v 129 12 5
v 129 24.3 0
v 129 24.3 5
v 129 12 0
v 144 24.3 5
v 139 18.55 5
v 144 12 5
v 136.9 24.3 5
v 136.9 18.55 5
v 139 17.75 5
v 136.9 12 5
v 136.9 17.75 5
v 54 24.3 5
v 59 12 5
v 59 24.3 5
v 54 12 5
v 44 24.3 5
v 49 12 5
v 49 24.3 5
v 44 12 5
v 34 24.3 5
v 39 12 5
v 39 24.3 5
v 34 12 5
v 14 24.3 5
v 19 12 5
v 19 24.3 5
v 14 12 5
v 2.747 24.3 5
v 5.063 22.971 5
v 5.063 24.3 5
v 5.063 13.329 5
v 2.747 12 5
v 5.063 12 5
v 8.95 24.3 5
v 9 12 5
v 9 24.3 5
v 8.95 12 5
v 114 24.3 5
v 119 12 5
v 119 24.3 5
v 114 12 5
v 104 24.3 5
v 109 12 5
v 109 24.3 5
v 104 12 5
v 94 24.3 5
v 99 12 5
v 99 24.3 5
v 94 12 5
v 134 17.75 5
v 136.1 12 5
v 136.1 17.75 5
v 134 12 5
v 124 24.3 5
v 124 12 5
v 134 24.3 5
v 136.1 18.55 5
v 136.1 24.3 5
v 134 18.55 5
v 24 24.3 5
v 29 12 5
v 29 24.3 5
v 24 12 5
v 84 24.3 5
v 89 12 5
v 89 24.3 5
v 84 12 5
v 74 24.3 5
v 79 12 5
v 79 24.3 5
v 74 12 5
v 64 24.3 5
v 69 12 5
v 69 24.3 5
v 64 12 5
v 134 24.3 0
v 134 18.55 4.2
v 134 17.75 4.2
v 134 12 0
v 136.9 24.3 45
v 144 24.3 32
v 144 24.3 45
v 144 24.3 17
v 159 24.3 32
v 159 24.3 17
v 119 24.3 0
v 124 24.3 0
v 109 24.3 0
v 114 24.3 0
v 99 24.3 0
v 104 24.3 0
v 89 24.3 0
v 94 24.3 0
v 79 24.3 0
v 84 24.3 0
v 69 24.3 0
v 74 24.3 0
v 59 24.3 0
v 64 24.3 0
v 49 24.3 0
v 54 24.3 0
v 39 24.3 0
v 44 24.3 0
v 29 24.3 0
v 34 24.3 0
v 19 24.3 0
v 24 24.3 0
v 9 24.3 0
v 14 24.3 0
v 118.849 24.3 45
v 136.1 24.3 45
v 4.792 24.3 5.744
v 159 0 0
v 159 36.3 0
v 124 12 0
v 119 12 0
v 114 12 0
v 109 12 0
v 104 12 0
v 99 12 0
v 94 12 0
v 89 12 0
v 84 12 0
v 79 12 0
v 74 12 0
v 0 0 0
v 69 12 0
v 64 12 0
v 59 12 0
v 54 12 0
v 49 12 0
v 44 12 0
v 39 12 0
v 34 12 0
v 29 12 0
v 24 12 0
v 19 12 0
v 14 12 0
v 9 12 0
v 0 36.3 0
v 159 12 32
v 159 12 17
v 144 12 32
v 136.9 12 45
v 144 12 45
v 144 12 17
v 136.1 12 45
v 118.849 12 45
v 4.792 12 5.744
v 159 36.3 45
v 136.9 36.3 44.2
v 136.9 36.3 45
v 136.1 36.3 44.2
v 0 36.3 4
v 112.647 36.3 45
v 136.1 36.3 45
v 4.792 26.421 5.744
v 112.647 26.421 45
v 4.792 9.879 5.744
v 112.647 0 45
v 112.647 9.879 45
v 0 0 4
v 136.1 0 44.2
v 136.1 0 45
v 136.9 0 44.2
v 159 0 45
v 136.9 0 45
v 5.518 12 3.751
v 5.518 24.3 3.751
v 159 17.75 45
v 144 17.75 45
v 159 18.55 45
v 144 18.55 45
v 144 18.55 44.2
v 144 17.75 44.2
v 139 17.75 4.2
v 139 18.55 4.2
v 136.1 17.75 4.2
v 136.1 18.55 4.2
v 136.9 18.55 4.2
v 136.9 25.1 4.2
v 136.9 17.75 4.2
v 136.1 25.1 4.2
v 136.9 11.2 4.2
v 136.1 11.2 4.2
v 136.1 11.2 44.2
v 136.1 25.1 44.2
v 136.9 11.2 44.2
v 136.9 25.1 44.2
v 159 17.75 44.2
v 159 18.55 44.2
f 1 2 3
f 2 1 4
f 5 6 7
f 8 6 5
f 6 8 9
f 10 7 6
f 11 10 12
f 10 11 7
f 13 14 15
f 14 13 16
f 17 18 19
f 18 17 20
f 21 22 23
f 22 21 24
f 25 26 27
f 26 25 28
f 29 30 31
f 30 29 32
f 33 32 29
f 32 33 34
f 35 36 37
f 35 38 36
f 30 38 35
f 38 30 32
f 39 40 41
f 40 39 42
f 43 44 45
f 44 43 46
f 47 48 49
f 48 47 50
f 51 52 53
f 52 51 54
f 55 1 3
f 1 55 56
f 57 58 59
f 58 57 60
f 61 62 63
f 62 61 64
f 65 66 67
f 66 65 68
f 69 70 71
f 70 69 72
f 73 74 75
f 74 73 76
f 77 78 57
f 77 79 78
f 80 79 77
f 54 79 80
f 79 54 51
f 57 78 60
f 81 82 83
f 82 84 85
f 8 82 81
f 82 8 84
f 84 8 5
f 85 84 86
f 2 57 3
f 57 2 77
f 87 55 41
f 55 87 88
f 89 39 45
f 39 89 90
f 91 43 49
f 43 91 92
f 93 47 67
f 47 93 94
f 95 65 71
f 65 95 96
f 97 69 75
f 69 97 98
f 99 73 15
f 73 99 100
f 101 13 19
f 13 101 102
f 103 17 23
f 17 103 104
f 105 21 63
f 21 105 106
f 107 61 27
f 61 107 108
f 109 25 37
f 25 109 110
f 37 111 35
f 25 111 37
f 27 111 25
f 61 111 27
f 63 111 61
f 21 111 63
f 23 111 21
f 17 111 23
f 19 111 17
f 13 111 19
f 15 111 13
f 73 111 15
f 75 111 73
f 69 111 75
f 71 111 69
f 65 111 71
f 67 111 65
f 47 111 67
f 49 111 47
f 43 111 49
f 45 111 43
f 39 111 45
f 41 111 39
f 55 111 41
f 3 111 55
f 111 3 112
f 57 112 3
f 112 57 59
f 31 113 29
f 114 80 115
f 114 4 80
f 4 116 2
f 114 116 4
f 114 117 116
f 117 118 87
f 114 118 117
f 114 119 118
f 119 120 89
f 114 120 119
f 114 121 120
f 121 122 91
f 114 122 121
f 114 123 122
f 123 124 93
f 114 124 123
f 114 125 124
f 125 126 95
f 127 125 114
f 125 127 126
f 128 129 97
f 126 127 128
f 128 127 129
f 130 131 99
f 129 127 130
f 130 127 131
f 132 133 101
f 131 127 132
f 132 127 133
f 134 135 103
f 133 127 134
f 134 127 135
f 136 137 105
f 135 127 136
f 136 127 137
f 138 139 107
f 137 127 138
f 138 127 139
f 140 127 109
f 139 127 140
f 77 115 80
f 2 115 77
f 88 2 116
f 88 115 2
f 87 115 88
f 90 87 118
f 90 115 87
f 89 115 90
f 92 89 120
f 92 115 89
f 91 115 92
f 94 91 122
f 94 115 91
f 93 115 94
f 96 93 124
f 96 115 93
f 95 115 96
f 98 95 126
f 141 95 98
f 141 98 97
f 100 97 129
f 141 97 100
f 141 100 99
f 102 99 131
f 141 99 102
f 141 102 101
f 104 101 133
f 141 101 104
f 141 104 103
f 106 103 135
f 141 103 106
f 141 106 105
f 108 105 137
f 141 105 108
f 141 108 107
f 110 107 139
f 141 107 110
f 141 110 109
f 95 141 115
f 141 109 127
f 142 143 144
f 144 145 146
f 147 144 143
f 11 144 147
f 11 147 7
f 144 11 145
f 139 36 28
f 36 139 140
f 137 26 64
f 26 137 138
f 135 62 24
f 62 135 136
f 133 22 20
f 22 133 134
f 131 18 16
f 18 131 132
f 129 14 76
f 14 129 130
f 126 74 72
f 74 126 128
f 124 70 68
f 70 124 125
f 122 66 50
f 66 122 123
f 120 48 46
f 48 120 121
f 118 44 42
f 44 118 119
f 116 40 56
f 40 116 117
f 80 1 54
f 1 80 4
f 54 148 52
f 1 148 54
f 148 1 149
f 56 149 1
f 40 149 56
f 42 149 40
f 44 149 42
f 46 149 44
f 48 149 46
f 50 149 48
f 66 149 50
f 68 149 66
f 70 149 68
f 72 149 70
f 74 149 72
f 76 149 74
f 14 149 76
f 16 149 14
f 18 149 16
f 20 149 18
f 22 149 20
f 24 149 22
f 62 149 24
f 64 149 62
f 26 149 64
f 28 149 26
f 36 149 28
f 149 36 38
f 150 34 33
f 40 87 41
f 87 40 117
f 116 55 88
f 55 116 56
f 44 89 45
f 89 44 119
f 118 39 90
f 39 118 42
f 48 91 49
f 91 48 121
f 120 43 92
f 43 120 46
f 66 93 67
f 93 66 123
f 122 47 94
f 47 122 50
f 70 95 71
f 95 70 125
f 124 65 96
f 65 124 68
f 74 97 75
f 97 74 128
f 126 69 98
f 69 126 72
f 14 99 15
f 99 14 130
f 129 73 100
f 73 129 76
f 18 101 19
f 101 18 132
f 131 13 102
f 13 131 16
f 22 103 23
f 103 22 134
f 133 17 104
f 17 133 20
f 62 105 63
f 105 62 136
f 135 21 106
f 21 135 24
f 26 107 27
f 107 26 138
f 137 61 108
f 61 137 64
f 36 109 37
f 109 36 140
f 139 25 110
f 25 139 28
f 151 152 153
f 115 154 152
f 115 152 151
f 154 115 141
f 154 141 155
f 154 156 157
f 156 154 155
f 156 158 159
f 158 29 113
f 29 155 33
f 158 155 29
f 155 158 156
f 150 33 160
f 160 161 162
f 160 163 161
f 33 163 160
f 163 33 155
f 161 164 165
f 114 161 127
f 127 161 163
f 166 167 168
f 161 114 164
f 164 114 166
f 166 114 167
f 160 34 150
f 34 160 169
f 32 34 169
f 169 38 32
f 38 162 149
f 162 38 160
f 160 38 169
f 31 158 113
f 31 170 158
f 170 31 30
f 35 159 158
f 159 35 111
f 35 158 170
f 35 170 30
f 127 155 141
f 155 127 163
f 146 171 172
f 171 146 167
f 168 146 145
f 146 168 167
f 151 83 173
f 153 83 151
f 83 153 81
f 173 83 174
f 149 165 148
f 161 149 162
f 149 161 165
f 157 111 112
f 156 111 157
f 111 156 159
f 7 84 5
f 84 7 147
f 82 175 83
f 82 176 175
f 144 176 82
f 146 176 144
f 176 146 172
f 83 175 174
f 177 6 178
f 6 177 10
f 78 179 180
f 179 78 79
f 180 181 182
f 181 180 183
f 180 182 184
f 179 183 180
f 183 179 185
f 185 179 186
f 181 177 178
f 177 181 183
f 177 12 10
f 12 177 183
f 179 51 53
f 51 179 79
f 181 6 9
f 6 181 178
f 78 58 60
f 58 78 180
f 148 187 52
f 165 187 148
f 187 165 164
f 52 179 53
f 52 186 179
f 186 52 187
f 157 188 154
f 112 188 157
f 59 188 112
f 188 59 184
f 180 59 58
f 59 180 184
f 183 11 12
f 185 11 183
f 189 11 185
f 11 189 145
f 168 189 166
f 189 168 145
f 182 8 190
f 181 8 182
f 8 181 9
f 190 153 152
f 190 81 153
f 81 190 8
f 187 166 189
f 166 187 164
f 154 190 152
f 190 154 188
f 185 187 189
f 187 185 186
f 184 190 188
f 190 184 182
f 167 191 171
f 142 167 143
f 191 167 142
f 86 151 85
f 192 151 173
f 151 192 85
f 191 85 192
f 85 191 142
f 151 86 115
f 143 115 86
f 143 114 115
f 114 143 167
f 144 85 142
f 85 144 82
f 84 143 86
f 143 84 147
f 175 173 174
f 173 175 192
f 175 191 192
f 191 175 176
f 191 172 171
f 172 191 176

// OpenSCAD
/* RailEduKit/InteractiveSignallingLaboratory © 2025 by Martin Scheidt and contributors
 * License: CC-BY 4.0 - https://creativecommons.org/licenses/by/4.0/
 * Project description: The Interactive Signalling Laboratory is a tool for training in Rail
 * Applications to enhance the knowledge of control and signalling principles for rail transport systems.
 *
 * Module: drill_template_straight
 */

include <config/global_variables.scad>

module diagonal_cutout() {
	translate([ 0, 0, 4 ])
	rotate([ 0, -20, 0 ])
	union() {
		cube([ 150, dsb_depth, 60 ]);
		// chamfer
		translate([ 155 / 2 + 2.6, dsc_y_pos, 0 ])
		rotate([ 45, 0, 0 ])
		cube([ 150, 3, 3 ], center = true);
		translate([ 155 / 2 + 2.6, dsc_y_pos + dsc_depth, 0 ])
		rotate([ 45, 0, 0 ])
		cube([ 150, 3, 3 ], center = true);
	}
}

module connector_space() {
	difference() {
		cube([ dsc_connector_width, dsb_depth, dsb_height ]);
		translate([ 0, dsc_y_pos, dsc_connector_z_pos ])
		cube([ dsc_connector_width, dsc_depth, dsc_connector_height ]);
		translate([ 0, dsc_y_pos + (dsc_depth - thin_line) / 2, dsb_height - thin_line ])
		cube([ dsc_connector_width, thin_line, thin_line ]);
	}
}
module template_straight() {
	difference() {
		cube([ straight_length, dsb_depth, dsb_height ]);
		// straight
		translate([ 0, dsc_y_pos, dsg_thickness ])
		cube([ straight_length, dsc_depth, dsb_height ]);
		// ground holes
		for (x = [straight_length - 3 * dsg_hole_depth:-10:5]) {
			translate([ x, dsc_y_pos, 0 ])
			cube([ dsg_hole_depth, dsc_depth, dsg_thickness ]);
		}
		diagonal_cutout();

		// hole position lines
		translate([
			straight_length - 2 * dsg_hole_depth, dsc_y_pos + (dsc_depth - thin_line) / 2, dsg_thickness - thin_line
		])
		cube([ dsg_hole_depth, thin_line, thin_line ]);
		translate([ straight_length - dsh_x_pos - thin_line / 2, dsc_y_pos, dsg_thickness - thin_line ])
		cube([ thin_line, dsc_depth, thin_line ]);
		translate([ straight_length - dsh_x_pos - thin_line / 2, dsc_y_pos - dsc_depth, dsb_height - thin_line ])
		cube([ thin_line, dsc_depth, thin_line ]);
		translate([ straight_length - dsh_x_pos - thin_line / 2, dsc_y_pos + dsc_depth, dsb_height - thin_line ])
		cube([ thin_line, dsc_depth, thin_line ]);
		translate([ straight_length - dsh_x_pos - thin_line / 2, dsc_y_pos - thin_line, dsg_thickness - thin_line ])
		cube([ thin_line, thin_line, dsb_height ]);
		translate([ straight_length - dsh_x_pos - thin_line / 2, dsc_y_pos + dsc_depth, dsg_thickness - thin_line ])
		cube([ thin_line, thin_line, dsb_height ]);
	}
	// connector
	translate([ straight_length, 0, 0 ])
	connector_space();
	// translate([-dsc_supporting_surface_width, dsc_y_pos, 0]) cube([dsc_supporting_surface_width,
	// rail_height+move_tolerance, dsg_thickness]);
}

module test_print() {
	difference() {
		template_straight();
		cube([ straight_length - 30, 50, 50 ]);
	}
}

template_straight();
// diagonal_cutout();
// connector_space();
// test_print();
